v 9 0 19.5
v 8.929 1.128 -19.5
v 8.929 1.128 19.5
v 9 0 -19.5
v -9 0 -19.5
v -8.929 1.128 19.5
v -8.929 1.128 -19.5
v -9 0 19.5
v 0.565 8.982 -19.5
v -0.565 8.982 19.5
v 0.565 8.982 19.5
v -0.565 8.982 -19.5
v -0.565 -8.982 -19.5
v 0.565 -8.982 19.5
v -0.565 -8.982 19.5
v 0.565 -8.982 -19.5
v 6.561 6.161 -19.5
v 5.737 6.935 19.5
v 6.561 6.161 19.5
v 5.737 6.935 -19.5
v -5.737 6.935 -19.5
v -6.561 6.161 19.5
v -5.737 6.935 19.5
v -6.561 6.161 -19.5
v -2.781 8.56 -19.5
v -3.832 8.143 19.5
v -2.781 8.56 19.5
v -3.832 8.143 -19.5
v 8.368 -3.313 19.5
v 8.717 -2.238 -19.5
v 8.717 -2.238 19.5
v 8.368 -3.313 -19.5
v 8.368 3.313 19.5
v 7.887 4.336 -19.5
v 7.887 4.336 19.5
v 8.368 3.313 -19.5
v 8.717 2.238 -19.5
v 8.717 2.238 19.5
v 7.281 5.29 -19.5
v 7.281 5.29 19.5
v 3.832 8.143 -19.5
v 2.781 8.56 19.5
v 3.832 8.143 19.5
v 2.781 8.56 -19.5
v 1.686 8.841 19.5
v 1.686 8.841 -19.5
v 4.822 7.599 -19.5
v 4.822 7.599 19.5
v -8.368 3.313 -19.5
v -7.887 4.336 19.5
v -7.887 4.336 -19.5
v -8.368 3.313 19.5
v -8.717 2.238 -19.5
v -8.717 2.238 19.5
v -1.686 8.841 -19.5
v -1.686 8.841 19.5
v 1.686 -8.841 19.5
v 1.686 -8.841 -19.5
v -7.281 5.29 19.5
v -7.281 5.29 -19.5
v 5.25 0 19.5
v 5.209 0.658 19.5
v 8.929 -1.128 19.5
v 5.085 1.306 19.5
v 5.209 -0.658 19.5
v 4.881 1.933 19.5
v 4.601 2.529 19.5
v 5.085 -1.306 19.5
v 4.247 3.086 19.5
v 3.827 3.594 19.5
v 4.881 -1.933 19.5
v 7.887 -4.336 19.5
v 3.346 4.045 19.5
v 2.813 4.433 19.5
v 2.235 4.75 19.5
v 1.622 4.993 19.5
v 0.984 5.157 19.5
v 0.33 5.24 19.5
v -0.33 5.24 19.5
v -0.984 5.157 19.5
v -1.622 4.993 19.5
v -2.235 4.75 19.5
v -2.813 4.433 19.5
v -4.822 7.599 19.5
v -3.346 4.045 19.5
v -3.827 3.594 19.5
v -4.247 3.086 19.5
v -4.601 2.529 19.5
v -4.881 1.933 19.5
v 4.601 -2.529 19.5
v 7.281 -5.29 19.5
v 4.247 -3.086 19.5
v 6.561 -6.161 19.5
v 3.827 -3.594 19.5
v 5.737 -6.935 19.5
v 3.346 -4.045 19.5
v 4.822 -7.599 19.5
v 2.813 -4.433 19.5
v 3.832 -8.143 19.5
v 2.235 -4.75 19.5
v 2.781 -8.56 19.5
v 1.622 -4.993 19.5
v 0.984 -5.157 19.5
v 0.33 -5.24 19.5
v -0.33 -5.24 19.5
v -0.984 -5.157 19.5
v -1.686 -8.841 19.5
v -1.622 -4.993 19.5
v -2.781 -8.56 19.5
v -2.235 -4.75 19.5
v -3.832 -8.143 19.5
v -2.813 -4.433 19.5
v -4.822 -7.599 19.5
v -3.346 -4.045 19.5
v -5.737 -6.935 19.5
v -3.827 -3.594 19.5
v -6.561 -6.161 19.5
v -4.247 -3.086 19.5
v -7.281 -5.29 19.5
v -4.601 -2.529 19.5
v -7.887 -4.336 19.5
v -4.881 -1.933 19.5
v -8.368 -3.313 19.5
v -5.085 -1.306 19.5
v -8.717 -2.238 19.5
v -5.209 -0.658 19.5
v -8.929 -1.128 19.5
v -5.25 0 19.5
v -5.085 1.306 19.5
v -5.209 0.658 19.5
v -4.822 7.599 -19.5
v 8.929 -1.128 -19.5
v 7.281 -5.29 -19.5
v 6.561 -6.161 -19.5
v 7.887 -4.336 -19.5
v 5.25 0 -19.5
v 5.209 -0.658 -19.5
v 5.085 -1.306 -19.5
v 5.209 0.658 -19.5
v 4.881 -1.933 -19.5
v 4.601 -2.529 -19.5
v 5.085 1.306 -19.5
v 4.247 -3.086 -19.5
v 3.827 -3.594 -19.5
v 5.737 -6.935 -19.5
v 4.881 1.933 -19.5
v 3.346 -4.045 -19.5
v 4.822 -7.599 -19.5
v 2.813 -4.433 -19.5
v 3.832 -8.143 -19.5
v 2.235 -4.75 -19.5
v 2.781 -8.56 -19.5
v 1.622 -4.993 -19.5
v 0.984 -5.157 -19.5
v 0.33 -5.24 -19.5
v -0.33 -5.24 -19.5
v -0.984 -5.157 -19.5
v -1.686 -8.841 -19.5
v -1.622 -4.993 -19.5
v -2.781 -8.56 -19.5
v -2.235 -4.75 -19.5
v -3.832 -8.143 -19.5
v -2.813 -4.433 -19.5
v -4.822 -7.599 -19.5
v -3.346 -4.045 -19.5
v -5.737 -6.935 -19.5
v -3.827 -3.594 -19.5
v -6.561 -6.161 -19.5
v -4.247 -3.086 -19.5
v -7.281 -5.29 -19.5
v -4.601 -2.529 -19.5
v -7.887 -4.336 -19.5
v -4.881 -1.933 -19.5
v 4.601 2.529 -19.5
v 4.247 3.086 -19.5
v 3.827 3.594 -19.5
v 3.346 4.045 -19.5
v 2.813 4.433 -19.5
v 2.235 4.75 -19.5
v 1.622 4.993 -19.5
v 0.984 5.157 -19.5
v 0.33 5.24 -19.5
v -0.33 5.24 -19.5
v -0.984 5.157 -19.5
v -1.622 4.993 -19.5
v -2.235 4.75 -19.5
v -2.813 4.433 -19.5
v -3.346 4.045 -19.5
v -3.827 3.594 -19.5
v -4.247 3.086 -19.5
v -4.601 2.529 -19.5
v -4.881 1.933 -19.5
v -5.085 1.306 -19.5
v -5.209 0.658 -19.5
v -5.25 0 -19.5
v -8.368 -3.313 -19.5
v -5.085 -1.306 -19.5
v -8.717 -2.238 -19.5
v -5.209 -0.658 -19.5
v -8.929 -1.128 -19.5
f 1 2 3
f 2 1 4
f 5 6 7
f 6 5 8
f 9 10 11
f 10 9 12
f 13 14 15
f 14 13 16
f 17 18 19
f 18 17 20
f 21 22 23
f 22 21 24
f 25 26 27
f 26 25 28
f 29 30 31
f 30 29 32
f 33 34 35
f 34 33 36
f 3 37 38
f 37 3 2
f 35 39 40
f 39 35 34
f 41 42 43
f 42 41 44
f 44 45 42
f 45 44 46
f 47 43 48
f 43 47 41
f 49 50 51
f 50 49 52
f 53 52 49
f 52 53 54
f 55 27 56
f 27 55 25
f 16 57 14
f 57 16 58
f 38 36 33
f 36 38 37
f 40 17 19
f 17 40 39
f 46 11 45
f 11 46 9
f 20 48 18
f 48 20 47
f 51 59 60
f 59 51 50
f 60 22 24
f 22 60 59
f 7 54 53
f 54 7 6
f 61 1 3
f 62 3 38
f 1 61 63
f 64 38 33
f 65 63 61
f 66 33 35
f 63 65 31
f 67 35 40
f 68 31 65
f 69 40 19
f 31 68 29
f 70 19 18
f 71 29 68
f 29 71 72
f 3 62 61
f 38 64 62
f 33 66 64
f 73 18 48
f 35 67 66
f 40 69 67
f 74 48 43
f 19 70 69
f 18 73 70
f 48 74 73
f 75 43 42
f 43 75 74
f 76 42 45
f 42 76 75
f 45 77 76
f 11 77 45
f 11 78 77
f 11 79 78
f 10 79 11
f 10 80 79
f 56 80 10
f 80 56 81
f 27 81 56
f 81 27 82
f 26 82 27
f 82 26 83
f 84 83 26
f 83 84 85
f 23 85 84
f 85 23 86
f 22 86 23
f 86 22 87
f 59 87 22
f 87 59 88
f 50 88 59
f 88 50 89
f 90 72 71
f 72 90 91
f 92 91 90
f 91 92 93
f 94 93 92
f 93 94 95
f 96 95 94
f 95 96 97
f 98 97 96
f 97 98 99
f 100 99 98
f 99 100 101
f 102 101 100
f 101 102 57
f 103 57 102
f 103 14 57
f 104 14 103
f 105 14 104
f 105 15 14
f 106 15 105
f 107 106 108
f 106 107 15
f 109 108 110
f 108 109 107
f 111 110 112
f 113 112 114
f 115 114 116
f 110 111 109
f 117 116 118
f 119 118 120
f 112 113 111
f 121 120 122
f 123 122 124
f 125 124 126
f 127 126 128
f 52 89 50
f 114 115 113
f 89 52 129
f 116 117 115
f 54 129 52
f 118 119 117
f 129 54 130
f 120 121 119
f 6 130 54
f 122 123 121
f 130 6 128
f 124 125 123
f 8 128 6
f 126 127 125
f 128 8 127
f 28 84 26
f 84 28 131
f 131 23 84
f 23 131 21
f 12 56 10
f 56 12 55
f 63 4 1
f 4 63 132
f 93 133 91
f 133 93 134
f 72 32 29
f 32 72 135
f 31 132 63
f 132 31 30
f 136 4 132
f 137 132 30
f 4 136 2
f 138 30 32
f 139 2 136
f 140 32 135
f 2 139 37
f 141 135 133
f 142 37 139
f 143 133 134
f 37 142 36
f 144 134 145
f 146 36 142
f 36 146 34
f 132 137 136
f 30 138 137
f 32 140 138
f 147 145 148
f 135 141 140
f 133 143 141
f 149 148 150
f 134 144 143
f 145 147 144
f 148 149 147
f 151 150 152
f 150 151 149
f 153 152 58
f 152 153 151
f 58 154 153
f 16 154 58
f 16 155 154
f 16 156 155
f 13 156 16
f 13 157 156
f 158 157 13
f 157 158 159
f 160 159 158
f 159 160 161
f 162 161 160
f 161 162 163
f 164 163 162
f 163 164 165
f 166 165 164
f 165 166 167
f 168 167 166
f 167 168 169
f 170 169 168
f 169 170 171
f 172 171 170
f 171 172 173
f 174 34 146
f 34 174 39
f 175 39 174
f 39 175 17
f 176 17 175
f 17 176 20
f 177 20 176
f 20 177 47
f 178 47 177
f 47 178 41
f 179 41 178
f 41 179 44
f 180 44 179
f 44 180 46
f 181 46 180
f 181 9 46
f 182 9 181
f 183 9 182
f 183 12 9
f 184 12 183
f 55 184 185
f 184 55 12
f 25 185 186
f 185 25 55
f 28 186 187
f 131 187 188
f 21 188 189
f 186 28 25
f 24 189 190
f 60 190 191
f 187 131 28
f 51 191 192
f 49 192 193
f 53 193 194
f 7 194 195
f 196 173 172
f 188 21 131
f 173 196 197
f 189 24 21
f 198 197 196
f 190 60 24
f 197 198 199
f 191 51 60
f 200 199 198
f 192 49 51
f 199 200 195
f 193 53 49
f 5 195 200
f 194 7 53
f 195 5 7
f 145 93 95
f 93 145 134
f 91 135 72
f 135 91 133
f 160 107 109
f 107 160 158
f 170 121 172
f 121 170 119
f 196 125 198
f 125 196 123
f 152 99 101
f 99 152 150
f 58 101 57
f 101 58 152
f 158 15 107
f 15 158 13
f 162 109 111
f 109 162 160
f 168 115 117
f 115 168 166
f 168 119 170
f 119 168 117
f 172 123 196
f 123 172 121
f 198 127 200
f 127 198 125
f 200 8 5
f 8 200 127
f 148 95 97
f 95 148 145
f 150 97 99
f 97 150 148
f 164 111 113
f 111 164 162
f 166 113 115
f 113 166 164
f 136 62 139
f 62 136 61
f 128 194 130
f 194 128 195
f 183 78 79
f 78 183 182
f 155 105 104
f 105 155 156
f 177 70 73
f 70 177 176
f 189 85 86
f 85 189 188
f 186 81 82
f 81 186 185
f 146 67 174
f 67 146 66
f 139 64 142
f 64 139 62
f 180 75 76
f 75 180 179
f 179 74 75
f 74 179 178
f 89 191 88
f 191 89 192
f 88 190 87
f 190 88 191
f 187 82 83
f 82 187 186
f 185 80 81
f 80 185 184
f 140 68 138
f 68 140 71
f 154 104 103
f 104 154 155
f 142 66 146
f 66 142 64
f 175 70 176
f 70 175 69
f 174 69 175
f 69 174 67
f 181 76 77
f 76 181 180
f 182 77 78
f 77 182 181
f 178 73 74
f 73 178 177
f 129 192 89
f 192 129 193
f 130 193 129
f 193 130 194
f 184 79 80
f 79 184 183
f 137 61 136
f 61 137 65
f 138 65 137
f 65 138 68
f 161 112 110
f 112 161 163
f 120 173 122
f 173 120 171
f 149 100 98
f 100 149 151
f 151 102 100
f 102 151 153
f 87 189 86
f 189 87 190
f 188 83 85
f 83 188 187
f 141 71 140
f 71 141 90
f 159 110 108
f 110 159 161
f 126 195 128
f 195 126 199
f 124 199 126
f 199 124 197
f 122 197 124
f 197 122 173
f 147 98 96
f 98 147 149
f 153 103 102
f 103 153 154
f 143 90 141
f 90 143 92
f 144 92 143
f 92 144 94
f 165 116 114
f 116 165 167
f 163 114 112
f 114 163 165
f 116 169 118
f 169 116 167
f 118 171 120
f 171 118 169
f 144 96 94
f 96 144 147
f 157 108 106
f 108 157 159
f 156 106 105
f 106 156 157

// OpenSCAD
$fn = 50;


difference() {
	union() {
		translate(v = [0, 0, -19.5000000000]) {
			cylinder(h = 39, r = 9.0000000000);
		}
	}
	union() {
		translate(v = [0, 0, -100.0000000000]) {
			cylinder(h = 200, r = 5.2500000000);
		}
	}
}
